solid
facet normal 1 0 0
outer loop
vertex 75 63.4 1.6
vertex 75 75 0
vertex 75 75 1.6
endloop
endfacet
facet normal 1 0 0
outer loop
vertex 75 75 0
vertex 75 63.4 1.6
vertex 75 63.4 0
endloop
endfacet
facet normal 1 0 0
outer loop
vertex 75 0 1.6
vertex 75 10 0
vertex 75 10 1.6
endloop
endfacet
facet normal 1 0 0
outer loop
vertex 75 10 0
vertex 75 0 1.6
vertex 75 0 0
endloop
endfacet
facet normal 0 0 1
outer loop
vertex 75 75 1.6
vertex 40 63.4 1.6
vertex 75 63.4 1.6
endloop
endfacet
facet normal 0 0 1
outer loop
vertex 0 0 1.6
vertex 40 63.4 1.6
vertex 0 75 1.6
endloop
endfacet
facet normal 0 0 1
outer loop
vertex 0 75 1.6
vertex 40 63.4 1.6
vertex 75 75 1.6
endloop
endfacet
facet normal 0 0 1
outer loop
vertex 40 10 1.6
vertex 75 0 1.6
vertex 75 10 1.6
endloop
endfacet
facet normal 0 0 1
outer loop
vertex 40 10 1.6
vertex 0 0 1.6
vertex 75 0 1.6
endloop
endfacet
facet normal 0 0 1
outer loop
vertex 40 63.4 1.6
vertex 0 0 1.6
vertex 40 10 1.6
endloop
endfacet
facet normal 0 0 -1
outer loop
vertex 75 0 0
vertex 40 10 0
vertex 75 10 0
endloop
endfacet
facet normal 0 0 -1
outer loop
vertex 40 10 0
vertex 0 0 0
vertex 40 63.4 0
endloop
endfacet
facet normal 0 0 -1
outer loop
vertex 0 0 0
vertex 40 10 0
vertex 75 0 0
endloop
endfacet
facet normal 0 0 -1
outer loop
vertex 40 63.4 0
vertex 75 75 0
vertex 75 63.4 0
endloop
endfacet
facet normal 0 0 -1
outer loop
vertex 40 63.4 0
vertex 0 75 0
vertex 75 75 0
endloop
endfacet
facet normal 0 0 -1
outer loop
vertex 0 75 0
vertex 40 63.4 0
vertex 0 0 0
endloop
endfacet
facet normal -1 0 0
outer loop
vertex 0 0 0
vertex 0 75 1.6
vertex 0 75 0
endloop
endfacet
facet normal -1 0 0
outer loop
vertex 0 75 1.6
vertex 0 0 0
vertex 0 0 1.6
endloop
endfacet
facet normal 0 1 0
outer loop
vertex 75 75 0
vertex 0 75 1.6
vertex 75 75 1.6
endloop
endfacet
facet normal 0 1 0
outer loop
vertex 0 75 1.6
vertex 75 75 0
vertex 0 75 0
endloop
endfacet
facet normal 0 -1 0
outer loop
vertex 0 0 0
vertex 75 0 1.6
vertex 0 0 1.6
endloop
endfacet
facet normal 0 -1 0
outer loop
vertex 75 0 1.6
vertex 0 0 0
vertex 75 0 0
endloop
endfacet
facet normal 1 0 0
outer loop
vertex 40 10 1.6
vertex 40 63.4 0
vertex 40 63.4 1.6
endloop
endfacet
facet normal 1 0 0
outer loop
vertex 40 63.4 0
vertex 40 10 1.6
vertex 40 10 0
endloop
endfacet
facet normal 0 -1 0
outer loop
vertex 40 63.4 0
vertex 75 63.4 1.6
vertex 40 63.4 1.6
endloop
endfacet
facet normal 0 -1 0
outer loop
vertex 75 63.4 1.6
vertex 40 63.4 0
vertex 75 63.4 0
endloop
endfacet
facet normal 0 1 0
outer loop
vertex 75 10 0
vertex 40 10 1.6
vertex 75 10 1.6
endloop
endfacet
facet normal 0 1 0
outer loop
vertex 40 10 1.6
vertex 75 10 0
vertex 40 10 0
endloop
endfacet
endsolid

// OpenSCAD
difference() {
  cube([75, 75, 1.6]);
  translate([40, 10, 0])
    cube([60, 53.4, 2]);
}
